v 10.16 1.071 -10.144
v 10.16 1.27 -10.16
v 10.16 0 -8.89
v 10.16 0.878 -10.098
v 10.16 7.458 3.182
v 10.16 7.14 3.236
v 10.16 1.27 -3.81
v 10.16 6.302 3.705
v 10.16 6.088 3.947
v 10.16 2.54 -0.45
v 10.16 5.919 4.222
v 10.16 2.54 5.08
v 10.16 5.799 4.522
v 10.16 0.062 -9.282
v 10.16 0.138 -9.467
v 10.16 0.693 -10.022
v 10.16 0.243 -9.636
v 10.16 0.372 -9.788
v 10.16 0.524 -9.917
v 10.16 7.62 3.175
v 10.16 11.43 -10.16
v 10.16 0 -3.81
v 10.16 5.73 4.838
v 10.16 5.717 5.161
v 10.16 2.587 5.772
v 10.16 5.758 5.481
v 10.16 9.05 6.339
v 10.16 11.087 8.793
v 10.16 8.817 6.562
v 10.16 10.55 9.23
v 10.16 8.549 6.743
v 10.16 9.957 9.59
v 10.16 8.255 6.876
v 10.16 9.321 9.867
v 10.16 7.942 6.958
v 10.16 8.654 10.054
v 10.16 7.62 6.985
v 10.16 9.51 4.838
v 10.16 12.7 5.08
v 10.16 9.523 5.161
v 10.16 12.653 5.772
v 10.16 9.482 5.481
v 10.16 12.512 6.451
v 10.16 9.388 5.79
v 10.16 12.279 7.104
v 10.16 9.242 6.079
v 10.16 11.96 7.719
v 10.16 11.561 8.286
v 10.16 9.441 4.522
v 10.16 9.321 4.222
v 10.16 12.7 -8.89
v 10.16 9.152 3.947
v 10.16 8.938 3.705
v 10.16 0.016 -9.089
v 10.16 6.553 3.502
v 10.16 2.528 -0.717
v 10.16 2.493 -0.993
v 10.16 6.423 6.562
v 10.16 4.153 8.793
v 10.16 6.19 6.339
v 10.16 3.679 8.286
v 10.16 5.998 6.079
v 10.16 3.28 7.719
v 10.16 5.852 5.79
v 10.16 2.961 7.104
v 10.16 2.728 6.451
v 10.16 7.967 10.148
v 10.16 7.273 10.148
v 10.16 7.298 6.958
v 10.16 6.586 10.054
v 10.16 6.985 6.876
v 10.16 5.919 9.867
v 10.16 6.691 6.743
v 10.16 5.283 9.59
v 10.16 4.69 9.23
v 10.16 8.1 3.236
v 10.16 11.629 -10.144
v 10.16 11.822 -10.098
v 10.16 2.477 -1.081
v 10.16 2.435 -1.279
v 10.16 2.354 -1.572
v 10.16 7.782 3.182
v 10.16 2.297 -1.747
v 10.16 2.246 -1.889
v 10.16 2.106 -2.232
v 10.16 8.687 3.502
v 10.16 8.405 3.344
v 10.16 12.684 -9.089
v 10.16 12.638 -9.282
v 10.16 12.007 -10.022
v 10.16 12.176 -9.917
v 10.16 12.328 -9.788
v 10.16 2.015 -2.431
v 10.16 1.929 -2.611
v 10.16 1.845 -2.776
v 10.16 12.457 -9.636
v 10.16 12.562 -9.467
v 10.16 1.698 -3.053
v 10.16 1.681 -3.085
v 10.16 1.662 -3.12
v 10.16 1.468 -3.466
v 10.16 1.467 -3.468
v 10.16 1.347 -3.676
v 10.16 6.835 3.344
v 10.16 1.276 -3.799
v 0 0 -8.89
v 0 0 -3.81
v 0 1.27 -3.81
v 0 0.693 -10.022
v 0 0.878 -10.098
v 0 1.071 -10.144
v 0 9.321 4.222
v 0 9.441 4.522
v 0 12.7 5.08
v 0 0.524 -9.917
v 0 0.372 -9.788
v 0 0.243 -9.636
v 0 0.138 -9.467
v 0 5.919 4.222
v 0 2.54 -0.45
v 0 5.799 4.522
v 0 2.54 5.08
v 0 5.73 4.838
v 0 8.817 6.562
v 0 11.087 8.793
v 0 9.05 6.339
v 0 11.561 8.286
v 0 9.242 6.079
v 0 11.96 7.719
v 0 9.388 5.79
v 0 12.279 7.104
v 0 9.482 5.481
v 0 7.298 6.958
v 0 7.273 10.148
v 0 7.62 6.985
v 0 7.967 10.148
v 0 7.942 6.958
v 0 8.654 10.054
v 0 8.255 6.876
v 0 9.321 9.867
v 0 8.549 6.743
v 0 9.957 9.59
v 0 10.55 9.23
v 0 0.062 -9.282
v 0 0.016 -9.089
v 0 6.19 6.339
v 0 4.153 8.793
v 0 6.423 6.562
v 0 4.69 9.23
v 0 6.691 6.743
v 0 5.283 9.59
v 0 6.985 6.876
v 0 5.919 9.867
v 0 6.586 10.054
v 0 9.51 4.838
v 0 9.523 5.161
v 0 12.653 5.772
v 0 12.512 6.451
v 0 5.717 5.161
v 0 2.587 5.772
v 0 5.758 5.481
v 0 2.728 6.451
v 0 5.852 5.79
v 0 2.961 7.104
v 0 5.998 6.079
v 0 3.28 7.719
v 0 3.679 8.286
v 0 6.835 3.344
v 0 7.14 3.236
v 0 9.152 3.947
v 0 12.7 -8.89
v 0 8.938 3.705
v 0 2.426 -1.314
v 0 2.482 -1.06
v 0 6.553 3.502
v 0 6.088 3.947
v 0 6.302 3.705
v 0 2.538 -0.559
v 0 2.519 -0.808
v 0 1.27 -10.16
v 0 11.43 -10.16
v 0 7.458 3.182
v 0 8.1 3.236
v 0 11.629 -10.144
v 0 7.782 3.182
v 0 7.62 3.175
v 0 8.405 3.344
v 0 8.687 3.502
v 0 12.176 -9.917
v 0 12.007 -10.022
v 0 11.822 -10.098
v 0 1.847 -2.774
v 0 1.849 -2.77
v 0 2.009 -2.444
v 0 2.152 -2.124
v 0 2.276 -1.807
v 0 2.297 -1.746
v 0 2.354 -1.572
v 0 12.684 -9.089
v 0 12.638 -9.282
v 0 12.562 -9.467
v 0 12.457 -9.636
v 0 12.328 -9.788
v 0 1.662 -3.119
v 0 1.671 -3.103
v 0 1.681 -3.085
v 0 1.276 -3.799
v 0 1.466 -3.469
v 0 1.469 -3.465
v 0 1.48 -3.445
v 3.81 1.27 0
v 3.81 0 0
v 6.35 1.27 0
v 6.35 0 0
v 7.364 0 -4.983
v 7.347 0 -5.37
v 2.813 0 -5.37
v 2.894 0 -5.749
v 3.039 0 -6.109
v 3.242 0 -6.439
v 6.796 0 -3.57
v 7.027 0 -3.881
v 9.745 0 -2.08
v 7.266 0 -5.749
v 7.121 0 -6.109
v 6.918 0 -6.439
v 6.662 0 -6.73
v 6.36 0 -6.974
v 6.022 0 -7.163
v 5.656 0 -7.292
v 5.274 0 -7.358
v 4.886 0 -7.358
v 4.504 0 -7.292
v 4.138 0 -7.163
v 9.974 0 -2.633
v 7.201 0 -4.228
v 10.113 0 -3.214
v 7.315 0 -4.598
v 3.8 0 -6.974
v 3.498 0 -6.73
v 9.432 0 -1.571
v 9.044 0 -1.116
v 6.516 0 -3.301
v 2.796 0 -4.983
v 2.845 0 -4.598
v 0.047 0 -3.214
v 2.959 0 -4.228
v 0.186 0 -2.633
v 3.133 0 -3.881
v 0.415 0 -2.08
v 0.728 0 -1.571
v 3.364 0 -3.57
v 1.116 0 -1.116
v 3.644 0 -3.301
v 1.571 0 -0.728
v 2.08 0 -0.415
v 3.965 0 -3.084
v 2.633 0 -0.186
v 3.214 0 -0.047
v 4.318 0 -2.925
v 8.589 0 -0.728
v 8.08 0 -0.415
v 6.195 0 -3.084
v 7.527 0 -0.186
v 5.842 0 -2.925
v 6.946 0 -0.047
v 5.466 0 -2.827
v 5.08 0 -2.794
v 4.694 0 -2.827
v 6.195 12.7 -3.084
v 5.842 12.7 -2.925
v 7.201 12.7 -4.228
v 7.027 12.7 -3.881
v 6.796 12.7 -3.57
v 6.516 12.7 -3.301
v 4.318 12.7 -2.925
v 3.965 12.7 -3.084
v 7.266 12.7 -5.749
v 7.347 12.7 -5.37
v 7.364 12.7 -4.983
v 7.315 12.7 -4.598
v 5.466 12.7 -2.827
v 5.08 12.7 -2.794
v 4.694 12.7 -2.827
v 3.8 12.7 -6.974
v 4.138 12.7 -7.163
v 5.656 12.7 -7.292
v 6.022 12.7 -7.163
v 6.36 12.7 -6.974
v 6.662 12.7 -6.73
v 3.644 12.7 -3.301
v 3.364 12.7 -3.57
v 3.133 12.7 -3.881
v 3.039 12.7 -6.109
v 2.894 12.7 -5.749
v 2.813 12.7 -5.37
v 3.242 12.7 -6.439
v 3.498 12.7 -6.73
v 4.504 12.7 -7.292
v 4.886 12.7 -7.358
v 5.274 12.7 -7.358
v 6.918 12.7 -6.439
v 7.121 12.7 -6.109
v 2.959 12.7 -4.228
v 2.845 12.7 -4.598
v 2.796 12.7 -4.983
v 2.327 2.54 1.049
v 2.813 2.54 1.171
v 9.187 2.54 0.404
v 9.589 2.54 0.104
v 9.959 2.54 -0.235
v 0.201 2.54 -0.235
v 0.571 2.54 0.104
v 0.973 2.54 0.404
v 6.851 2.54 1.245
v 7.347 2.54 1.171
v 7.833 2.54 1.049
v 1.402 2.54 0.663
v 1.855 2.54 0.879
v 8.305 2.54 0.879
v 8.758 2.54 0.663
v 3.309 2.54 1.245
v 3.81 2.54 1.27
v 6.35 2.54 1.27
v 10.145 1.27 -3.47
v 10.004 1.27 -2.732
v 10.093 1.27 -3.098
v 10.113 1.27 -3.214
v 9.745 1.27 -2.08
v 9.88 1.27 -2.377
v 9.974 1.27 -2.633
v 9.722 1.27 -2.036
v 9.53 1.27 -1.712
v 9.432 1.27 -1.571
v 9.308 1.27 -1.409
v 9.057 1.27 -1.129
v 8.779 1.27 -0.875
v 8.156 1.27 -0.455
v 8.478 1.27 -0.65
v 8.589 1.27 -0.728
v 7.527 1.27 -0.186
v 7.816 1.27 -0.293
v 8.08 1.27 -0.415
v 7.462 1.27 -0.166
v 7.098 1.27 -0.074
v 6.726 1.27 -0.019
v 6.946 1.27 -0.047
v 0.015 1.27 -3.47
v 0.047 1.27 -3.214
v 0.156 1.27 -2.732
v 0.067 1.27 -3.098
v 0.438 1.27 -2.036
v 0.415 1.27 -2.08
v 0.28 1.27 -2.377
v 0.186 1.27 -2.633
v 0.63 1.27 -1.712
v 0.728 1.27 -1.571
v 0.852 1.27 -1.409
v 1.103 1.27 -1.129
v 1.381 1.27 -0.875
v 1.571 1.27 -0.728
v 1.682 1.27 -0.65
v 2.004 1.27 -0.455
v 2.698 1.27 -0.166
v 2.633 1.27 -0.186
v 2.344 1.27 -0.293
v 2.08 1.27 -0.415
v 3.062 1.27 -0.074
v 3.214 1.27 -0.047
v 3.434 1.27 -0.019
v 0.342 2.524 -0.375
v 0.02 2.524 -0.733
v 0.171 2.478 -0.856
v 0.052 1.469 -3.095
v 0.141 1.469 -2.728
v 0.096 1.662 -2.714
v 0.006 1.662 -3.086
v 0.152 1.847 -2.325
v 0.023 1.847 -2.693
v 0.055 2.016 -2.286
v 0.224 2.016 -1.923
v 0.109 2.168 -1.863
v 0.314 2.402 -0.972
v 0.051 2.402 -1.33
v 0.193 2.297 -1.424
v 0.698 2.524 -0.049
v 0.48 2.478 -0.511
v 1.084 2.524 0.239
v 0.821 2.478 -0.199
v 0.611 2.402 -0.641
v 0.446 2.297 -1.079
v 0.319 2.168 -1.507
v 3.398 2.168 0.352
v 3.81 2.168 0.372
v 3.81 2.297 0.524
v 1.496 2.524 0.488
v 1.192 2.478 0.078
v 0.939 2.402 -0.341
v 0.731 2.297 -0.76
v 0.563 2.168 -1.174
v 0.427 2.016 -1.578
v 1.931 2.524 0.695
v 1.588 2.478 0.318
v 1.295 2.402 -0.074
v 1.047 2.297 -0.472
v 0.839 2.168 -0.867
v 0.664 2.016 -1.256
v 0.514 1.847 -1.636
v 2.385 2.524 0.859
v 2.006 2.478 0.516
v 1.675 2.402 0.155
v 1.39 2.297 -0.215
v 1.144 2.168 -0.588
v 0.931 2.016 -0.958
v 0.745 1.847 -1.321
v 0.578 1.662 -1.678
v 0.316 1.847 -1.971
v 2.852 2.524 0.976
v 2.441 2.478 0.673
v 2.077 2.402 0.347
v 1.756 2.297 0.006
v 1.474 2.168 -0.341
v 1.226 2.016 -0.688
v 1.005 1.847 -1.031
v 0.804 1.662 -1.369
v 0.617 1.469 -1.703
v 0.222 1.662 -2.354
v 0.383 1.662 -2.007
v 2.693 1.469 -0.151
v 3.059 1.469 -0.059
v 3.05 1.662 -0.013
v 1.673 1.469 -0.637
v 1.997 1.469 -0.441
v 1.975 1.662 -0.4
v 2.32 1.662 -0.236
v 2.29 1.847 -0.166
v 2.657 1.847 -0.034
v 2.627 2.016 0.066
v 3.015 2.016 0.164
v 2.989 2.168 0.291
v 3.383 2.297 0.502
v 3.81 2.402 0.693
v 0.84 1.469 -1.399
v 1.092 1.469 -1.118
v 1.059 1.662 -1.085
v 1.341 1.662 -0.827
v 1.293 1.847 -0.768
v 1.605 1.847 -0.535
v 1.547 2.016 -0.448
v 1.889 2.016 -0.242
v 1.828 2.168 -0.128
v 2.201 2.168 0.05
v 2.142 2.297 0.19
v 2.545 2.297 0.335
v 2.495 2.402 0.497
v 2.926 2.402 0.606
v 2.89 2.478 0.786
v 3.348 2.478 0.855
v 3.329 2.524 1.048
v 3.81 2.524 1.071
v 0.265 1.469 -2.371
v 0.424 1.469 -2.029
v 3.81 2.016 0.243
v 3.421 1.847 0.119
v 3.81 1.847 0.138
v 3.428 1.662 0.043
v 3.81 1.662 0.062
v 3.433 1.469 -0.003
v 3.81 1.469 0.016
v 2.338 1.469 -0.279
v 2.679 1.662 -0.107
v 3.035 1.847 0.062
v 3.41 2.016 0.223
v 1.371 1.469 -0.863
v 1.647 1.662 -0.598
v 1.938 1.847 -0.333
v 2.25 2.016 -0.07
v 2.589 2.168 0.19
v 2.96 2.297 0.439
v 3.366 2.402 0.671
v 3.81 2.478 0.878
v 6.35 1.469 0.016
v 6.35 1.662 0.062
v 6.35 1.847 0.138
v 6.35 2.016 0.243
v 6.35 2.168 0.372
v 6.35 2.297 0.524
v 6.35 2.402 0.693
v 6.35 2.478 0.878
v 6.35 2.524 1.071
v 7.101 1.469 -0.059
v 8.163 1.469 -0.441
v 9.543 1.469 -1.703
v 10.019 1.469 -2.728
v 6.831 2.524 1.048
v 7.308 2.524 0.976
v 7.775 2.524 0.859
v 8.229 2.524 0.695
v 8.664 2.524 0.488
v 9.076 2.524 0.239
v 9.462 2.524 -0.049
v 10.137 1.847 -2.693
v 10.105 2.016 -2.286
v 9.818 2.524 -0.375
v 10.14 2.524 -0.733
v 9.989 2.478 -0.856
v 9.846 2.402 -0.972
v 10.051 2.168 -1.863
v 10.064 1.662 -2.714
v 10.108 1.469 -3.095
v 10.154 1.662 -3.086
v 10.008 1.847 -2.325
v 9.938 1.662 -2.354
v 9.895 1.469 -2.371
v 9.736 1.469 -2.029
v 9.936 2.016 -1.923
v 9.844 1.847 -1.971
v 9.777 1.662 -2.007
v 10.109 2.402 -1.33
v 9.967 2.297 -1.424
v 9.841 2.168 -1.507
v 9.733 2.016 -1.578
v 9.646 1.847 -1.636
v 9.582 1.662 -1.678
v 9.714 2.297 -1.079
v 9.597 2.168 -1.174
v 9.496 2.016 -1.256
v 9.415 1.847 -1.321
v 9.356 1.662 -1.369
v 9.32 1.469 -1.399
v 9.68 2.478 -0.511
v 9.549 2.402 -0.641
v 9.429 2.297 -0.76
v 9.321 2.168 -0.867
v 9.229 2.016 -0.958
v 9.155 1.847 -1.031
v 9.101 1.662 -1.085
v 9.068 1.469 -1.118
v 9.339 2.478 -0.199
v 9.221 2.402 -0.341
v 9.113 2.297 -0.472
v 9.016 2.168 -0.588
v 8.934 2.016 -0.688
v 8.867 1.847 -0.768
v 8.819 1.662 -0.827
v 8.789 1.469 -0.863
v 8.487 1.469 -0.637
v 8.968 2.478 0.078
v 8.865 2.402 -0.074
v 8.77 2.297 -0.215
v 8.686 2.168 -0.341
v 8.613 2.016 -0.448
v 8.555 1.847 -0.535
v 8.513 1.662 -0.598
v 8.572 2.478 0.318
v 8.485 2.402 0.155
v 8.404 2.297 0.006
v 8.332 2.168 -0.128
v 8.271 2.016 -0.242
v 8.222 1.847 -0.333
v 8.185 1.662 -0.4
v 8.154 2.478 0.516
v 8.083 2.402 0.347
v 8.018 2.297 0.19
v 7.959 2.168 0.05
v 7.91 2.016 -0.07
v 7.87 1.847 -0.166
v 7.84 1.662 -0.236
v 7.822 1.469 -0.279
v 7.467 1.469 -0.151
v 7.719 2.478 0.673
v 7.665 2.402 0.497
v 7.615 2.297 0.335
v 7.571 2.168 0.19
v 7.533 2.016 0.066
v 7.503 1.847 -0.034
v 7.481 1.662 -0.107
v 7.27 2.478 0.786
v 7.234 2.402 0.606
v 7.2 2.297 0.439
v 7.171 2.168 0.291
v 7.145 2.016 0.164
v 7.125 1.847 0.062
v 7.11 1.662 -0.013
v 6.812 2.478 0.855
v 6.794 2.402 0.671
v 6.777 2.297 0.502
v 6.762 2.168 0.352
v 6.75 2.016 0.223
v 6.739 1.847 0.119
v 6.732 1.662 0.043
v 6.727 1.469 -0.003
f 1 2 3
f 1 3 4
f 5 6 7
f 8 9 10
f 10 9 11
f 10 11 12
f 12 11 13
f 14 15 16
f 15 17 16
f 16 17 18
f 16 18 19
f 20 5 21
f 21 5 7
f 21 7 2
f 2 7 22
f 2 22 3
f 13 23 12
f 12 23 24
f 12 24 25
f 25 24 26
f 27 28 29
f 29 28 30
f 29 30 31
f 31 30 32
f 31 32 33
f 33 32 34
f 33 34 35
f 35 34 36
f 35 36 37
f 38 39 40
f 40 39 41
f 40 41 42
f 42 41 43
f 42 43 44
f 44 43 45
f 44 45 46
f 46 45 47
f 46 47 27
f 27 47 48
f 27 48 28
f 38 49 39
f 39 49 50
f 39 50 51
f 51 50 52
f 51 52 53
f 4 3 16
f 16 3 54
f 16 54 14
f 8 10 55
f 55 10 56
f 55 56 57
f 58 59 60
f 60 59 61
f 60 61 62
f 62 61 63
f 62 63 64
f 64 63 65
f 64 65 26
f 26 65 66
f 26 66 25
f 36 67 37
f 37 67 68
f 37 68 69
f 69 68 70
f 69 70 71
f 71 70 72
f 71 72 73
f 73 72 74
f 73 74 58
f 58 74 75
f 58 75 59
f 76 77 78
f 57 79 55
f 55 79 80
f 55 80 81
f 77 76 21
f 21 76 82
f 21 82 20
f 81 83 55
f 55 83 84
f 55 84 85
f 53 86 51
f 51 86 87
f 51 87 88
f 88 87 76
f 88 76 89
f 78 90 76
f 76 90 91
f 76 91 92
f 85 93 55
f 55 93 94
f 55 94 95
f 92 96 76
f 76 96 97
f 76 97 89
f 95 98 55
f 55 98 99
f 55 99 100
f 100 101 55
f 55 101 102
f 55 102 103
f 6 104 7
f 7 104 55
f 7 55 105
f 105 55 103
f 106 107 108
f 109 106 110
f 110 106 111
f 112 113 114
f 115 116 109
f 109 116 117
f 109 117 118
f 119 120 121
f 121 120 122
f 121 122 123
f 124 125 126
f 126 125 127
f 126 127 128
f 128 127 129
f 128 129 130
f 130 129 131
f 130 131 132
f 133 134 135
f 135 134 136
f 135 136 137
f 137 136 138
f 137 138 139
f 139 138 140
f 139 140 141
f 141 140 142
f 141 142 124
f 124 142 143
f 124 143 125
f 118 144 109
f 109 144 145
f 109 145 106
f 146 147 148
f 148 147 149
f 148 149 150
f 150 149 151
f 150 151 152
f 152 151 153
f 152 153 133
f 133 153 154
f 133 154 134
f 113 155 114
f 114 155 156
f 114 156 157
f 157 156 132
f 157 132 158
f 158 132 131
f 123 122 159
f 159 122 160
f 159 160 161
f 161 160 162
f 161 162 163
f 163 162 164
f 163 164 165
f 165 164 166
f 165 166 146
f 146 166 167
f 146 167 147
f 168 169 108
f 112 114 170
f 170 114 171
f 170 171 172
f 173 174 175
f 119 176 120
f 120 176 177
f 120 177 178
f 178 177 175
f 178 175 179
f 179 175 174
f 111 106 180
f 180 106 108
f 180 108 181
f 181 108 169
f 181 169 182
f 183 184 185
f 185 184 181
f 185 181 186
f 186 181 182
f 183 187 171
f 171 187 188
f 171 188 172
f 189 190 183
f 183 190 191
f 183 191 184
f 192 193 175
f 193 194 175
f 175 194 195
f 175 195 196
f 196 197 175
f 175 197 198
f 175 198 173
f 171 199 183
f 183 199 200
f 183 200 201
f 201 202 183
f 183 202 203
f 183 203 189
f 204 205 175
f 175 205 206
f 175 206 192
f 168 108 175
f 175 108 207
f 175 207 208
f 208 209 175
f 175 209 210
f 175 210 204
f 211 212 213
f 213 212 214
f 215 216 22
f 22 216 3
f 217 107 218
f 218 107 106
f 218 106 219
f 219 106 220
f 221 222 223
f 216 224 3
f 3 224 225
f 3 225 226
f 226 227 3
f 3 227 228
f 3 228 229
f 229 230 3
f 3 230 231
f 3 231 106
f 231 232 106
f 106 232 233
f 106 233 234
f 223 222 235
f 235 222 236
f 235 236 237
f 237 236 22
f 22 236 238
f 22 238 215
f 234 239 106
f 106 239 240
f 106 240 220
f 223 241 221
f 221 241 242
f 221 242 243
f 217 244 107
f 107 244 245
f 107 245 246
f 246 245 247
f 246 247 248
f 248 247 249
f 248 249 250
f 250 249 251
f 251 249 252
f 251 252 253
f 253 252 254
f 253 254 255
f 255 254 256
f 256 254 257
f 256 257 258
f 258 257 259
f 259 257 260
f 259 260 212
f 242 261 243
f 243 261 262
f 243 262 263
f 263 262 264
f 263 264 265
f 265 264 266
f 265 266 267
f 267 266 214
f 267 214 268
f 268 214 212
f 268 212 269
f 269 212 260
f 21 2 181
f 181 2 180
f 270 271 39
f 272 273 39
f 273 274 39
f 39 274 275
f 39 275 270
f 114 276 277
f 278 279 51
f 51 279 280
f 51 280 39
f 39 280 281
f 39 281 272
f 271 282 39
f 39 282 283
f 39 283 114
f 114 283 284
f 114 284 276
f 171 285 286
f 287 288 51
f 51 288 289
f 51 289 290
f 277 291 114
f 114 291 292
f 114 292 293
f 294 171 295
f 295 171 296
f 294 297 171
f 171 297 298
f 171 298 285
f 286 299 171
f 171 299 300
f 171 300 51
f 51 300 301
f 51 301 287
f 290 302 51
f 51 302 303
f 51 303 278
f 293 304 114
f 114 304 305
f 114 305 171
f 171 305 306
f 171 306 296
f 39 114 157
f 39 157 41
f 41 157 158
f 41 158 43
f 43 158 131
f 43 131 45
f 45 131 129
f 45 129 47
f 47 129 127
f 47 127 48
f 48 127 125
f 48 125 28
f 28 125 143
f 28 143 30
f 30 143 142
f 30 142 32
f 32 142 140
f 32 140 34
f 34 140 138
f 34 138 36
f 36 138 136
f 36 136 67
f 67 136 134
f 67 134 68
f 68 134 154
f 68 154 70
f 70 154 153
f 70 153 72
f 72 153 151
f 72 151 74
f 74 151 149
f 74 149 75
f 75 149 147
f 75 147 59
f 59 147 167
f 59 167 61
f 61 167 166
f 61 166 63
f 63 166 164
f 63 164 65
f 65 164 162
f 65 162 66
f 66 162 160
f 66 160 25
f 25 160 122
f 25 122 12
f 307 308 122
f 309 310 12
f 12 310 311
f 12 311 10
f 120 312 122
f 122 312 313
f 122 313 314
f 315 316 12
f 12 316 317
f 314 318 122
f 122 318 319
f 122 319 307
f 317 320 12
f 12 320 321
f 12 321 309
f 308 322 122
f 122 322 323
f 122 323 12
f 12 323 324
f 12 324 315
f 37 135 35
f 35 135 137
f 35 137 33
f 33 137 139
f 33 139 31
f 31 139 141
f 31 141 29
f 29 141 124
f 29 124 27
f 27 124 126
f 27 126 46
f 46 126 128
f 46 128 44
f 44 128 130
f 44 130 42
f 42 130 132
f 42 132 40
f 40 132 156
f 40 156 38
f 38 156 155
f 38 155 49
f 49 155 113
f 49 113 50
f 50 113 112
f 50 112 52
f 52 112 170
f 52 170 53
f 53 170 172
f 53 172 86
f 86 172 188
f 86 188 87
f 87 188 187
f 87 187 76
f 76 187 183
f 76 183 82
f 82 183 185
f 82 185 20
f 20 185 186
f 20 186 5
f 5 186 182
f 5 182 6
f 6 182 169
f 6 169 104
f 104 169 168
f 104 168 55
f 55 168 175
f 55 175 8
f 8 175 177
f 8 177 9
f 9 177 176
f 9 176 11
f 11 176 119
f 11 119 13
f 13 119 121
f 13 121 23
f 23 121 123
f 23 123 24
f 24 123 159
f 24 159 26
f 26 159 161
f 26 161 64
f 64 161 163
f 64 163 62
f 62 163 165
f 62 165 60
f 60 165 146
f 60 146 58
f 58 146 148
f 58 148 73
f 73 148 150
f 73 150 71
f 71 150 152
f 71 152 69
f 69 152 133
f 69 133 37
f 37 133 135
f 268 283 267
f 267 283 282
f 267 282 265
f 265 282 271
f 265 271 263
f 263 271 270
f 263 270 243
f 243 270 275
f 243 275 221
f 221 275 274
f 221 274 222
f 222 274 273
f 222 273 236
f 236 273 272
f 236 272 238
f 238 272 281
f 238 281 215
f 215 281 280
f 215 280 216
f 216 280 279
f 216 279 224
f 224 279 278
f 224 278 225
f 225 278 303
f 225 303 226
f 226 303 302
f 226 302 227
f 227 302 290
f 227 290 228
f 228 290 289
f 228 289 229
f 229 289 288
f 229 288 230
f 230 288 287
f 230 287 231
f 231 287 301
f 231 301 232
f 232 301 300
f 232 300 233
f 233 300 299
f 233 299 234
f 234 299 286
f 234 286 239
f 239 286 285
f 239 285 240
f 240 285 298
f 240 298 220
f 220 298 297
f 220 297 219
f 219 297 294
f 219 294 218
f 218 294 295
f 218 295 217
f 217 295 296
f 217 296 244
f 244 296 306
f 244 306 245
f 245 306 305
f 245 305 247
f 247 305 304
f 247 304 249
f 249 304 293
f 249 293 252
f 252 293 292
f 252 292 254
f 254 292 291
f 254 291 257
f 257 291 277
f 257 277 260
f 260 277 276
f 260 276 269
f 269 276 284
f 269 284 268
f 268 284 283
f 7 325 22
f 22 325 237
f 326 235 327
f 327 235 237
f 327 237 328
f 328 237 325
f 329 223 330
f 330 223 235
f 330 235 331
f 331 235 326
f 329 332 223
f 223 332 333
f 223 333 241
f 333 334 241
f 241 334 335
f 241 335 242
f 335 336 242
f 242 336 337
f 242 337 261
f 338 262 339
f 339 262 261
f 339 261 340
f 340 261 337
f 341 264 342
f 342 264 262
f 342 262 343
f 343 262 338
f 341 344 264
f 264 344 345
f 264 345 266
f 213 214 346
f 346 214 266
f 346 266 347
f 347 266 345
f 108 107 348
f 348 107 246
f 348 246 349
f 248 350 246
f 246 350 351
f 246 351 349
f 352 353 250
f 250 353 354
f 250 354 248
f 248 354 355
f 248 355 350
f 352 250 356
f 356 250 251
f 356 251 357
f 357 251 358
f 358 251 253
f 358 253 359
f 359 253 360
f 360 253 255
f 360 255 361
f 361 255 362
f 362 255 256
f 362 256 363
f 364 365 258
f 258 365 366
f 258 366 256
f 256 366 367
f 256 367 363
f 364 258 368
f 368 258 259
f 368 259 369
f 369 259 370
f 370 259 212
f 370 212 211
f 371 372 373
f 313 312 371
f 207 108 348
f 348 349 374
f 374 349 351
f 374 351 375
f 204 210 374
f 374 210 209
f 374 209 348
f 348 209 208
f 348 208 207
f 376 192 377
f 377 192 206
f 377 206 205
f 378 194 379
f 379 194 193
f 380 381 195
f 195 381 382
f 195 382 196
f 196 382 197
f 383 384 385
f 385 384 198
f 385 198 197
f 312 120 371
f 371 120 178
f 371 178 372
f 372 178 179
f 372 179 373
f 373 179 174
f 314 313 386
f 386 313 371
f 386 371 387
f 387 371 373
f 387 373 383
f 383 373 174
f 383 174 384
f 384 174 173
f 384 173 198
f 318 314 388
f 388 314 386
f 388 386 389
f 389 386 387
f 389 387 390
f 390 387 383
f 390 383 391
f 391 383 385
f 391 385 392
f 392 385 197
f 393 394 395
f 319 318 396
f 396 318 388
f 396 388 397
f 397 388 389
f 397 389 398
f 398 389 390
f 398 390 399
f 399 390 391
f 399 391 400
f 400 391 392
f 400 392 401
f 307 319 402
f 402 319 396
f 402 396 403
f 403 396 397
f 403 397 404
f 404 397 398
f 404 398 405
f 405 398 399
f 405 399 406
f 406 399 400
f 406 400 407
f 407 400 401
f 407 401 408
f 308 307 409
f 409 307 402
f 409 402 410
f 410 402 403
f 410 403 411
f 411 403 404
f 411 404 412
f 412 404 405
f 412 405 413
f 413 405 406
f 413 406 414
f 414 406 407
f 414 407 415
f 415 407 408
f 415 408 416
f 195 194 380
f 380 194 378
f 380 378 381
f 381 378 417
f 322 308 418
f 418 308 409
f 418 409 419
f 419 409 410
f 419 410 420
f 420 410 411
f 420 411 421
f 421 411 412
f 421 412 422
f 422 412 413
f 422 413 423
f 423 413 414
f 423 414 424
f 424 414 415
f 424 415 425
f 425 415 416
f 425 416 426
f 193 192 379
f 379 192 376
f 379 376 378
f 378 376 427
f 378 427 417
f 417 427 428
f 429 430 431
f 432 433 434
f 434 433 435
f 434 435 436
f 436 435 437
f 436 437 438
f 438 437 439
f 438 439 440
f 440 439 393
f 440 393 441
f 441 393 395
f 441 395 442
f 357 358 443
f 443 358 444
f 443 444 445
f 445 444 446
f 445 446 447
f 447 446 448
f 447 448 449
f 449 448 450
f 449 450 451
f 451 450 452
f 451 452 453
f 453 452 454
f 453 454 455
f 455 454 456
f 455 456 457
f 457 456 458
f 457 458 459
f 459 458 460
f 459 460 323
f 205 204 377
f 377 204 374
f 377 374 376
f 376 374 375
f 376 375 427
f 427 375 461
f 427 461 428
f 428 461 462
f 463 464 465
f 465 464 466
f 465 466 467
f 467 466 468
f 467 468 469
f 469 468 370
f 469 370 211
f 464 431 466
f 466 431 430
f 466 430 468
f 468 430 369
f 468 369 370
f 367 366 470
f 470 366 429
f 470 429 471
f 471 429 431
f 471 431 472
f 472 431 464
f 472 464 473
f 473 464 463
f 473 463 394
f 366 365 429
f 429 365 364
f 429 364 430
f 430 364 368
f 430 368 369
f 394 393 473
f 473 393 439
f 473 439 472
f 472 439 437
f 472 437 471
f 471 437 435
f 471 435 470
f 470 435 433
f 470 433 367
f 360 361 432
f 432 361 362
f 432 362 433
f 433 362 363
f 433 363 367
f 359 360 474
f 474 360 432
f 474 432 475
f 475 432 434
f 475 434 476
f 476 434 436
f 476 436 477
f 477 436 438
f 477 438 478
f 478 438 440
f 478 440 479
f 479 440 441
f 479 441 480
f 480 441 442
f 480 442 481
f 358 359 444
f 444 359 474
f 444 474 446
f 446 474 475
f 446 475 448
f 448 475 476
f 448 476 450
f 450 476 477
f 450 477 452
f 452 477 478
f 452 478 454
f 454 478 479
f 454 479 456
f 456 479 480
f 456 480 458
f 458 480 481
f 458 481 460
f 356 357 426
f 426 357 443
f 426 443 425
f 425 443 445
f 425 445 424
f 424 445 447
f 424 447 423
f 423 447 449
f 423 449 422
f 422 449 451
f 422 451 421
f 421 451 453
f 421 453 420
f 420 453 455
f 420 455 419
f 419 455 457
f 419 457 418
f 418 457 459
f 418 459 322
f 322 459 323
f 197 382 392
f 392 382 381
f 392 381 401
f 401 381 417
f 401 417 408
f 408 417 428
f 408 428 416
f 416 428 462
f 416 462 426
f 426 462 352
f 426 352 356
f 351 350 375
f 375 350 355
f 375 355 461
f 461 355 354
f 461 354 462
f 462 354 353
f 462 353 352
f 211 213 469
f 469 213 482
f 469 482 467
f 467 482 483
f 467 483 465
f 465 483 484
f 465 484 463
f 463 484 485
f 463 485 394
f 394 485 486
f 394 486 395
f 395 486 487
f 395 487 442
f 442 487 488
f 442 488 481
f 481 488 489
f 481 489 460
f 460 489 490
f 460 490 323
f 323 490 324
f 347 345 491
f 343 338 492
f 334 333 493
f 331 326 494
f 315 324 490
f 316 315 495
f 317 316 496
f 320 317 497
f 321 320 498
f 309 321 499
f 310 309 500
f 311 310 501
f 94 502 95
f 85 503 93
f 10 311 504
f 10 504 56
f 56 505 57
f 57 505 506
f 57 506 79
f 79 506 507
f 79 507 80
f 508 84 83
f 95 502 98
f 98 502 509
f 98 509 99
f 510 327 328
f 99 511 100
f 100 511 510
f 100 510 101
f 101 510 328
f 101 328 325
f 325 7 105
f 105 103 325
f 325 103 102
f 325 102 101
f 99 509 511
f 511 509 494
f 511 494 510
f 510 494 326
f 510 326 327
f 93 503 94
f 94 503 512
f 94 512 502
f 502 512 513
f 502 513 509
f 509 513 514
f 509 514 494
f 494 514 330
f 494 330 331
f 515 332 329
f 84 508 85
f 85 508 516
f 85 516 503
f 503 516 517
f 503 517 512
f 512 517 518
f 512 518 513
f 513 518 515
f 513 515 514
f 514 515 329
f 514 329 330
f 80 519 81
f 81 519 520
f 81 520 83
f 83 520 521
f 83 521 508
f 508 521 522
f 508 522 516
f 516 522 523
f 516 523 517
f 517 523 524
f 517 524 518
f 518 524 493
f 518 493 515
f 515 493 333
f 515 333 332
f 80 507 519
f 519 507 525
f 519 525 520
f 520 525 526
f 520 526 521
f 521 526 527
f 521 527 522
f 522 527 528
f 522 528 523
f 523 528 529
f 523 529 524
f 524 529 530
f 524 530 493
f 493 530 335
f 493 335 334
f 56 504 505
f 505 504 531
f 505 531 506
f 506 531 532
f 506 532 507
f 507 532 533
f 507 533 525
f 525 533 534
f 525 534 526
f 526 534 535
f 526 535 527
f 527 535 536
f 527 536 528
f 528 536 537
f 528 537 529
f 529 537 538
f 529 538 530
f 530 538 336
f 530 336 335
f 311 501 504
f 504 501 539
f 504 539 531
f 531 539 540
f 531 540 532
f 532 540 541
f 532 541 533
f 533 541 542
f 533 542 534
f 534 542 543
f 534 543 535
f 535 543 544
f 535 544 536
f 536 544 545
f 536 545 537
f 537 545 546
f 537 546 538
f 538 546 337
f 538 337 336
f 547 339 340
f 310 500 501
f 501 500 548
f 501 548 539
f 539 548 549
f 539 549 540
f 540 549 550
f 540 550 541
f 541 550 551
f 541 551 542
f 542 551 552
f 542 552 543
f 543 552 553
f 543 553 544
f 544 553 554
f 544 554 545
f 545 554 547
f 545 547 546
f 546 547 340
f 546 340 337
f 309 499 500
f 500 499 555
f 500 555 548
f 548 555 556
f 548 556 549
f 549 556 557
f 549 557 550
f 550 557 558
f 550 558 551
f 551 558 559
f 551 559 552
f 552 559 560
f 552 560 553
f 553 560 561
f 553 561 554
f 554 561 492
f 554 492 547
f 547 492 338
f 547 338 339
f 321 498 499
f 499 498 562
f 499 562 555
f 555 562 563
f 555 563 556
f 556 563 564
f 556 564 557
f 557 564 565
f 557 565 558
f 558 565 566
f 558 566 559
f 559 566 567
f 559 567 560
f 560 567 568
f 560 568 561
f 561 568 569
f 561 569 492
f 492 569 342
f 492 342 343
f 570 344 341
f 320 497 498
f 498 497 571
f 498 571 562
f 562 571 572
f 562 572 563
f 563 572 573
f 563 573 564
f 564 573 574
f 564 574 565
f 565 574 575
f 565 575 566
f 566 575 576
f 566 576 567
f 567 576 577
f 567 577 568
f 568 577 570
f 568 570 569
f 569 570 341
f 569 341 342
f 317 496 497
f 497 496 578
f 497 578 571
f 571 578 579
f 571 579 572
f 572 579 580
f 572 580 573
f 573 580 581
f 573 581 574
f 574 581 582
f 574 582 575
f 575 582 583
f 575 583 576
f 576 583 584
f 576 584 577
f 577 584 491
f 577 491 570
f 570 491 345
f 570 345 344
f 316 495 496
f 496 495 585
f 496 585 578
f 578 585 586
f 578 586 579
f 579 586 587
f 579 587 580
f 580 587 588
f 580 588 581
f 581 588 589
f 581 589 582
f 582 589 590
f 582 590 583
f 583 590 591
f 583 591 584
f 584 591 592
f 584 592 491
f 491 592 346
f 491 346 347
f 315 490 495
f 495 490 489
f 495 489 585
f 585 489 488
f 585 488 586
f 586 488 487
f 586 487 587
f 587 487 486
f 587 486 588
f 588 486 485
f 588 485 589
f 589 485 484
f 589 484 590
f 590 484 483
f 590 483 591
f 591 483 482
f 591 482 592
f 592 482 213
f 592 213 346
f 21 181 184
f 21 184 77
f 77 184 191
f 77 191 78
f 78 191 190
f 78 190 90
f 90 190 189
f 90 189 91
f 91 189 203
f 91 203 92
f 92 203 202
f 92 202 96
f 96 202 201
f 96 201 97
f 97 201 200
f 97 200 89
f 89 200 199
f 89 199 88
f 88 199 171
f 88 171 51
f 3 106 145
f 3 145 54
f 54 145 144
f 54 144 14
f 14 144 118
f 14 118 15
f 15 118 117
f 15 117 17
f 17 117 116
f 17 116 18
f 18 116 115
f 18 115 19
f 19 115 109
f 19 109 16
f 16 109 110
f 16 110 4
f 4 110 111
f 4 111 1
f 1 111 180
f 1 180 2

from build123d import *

# Parameters (mm, degrees)
SKETCH1_R           = 1.905
BOSS_EXTRUDE1_DEPTH = 10.16
SKETCH2_R           = 2.286
CUT_EXTRUDE1_DEPTH  = 20.176579466
FILLET2_R           = 3.81
FILLET1_R           = 1.27


with BuildPart() as part:
    # Sketch1 → Boss-Extrude1 (new body)
    with BuildSketch(Plane(origin=(0, 0, 0), x_dir=(0, 0, -1), z_dir=(1, 0, 0))):
        with BuildLine():
            Line((0, 0), (10.16, 0))
            Line((10.16, 0), (10.16, 12.7))
            Line((10.16, 12.7), (-5.08, 12.7))
            ThreePointArc((-5.08, 12.7), (-10.16, 7.62), (-5.08, 2.54))
            Line((-5.08, 2.54), (0, 2.54))
            Line((0, 2.54), (0, 0))
        make_face()
        with Locations((-5.08, 7.62)):
            Circle(SKETCH1_R, mode=Mode.SUBTRACT)
    extrude(amount=BOSS_EXTRUDE1_DEPTH)

    # Sketch2 → Cut-Extrude1 (cut, through all)
    with BuildSketch(Plane(origin=(0, 12.7, 0), x_dir=(1, 0, 0), z_dir=(0, 1, 0))):
        with Locations(Location((5.08, 5.08, 0), (0, 0, 270))):
            Circle(SKETCH2_R)
    extrude(amount=-CUT_EXTRUDE1_DEPTH, mode=Mode.SUBTRACT)

    # Fillet2
    fillet2_edges = [part.edges().sort_by_distance(p)[0] for p in [
        (10.16, 1.27, 0),
        (0, 1.27, 0),
    ]]
    fillet(fillet2_edges, radius=FILLET2_R)

    # Fillet1
    fillet1_edges = [part.edges().sort_by_distance(p)[0] for p in [
        (5.08, 2.54, 0),
        (1.115923164, 2.54, -1.115923164),
        (9.044076836, 2.54, -1.115923164),
        (5.08, 0, -10.16),
        (5.08, 12.7, -10.16),
    ]]
    fillet(fillet1_edges, radius=FILLET1_R)


solid = part.part
